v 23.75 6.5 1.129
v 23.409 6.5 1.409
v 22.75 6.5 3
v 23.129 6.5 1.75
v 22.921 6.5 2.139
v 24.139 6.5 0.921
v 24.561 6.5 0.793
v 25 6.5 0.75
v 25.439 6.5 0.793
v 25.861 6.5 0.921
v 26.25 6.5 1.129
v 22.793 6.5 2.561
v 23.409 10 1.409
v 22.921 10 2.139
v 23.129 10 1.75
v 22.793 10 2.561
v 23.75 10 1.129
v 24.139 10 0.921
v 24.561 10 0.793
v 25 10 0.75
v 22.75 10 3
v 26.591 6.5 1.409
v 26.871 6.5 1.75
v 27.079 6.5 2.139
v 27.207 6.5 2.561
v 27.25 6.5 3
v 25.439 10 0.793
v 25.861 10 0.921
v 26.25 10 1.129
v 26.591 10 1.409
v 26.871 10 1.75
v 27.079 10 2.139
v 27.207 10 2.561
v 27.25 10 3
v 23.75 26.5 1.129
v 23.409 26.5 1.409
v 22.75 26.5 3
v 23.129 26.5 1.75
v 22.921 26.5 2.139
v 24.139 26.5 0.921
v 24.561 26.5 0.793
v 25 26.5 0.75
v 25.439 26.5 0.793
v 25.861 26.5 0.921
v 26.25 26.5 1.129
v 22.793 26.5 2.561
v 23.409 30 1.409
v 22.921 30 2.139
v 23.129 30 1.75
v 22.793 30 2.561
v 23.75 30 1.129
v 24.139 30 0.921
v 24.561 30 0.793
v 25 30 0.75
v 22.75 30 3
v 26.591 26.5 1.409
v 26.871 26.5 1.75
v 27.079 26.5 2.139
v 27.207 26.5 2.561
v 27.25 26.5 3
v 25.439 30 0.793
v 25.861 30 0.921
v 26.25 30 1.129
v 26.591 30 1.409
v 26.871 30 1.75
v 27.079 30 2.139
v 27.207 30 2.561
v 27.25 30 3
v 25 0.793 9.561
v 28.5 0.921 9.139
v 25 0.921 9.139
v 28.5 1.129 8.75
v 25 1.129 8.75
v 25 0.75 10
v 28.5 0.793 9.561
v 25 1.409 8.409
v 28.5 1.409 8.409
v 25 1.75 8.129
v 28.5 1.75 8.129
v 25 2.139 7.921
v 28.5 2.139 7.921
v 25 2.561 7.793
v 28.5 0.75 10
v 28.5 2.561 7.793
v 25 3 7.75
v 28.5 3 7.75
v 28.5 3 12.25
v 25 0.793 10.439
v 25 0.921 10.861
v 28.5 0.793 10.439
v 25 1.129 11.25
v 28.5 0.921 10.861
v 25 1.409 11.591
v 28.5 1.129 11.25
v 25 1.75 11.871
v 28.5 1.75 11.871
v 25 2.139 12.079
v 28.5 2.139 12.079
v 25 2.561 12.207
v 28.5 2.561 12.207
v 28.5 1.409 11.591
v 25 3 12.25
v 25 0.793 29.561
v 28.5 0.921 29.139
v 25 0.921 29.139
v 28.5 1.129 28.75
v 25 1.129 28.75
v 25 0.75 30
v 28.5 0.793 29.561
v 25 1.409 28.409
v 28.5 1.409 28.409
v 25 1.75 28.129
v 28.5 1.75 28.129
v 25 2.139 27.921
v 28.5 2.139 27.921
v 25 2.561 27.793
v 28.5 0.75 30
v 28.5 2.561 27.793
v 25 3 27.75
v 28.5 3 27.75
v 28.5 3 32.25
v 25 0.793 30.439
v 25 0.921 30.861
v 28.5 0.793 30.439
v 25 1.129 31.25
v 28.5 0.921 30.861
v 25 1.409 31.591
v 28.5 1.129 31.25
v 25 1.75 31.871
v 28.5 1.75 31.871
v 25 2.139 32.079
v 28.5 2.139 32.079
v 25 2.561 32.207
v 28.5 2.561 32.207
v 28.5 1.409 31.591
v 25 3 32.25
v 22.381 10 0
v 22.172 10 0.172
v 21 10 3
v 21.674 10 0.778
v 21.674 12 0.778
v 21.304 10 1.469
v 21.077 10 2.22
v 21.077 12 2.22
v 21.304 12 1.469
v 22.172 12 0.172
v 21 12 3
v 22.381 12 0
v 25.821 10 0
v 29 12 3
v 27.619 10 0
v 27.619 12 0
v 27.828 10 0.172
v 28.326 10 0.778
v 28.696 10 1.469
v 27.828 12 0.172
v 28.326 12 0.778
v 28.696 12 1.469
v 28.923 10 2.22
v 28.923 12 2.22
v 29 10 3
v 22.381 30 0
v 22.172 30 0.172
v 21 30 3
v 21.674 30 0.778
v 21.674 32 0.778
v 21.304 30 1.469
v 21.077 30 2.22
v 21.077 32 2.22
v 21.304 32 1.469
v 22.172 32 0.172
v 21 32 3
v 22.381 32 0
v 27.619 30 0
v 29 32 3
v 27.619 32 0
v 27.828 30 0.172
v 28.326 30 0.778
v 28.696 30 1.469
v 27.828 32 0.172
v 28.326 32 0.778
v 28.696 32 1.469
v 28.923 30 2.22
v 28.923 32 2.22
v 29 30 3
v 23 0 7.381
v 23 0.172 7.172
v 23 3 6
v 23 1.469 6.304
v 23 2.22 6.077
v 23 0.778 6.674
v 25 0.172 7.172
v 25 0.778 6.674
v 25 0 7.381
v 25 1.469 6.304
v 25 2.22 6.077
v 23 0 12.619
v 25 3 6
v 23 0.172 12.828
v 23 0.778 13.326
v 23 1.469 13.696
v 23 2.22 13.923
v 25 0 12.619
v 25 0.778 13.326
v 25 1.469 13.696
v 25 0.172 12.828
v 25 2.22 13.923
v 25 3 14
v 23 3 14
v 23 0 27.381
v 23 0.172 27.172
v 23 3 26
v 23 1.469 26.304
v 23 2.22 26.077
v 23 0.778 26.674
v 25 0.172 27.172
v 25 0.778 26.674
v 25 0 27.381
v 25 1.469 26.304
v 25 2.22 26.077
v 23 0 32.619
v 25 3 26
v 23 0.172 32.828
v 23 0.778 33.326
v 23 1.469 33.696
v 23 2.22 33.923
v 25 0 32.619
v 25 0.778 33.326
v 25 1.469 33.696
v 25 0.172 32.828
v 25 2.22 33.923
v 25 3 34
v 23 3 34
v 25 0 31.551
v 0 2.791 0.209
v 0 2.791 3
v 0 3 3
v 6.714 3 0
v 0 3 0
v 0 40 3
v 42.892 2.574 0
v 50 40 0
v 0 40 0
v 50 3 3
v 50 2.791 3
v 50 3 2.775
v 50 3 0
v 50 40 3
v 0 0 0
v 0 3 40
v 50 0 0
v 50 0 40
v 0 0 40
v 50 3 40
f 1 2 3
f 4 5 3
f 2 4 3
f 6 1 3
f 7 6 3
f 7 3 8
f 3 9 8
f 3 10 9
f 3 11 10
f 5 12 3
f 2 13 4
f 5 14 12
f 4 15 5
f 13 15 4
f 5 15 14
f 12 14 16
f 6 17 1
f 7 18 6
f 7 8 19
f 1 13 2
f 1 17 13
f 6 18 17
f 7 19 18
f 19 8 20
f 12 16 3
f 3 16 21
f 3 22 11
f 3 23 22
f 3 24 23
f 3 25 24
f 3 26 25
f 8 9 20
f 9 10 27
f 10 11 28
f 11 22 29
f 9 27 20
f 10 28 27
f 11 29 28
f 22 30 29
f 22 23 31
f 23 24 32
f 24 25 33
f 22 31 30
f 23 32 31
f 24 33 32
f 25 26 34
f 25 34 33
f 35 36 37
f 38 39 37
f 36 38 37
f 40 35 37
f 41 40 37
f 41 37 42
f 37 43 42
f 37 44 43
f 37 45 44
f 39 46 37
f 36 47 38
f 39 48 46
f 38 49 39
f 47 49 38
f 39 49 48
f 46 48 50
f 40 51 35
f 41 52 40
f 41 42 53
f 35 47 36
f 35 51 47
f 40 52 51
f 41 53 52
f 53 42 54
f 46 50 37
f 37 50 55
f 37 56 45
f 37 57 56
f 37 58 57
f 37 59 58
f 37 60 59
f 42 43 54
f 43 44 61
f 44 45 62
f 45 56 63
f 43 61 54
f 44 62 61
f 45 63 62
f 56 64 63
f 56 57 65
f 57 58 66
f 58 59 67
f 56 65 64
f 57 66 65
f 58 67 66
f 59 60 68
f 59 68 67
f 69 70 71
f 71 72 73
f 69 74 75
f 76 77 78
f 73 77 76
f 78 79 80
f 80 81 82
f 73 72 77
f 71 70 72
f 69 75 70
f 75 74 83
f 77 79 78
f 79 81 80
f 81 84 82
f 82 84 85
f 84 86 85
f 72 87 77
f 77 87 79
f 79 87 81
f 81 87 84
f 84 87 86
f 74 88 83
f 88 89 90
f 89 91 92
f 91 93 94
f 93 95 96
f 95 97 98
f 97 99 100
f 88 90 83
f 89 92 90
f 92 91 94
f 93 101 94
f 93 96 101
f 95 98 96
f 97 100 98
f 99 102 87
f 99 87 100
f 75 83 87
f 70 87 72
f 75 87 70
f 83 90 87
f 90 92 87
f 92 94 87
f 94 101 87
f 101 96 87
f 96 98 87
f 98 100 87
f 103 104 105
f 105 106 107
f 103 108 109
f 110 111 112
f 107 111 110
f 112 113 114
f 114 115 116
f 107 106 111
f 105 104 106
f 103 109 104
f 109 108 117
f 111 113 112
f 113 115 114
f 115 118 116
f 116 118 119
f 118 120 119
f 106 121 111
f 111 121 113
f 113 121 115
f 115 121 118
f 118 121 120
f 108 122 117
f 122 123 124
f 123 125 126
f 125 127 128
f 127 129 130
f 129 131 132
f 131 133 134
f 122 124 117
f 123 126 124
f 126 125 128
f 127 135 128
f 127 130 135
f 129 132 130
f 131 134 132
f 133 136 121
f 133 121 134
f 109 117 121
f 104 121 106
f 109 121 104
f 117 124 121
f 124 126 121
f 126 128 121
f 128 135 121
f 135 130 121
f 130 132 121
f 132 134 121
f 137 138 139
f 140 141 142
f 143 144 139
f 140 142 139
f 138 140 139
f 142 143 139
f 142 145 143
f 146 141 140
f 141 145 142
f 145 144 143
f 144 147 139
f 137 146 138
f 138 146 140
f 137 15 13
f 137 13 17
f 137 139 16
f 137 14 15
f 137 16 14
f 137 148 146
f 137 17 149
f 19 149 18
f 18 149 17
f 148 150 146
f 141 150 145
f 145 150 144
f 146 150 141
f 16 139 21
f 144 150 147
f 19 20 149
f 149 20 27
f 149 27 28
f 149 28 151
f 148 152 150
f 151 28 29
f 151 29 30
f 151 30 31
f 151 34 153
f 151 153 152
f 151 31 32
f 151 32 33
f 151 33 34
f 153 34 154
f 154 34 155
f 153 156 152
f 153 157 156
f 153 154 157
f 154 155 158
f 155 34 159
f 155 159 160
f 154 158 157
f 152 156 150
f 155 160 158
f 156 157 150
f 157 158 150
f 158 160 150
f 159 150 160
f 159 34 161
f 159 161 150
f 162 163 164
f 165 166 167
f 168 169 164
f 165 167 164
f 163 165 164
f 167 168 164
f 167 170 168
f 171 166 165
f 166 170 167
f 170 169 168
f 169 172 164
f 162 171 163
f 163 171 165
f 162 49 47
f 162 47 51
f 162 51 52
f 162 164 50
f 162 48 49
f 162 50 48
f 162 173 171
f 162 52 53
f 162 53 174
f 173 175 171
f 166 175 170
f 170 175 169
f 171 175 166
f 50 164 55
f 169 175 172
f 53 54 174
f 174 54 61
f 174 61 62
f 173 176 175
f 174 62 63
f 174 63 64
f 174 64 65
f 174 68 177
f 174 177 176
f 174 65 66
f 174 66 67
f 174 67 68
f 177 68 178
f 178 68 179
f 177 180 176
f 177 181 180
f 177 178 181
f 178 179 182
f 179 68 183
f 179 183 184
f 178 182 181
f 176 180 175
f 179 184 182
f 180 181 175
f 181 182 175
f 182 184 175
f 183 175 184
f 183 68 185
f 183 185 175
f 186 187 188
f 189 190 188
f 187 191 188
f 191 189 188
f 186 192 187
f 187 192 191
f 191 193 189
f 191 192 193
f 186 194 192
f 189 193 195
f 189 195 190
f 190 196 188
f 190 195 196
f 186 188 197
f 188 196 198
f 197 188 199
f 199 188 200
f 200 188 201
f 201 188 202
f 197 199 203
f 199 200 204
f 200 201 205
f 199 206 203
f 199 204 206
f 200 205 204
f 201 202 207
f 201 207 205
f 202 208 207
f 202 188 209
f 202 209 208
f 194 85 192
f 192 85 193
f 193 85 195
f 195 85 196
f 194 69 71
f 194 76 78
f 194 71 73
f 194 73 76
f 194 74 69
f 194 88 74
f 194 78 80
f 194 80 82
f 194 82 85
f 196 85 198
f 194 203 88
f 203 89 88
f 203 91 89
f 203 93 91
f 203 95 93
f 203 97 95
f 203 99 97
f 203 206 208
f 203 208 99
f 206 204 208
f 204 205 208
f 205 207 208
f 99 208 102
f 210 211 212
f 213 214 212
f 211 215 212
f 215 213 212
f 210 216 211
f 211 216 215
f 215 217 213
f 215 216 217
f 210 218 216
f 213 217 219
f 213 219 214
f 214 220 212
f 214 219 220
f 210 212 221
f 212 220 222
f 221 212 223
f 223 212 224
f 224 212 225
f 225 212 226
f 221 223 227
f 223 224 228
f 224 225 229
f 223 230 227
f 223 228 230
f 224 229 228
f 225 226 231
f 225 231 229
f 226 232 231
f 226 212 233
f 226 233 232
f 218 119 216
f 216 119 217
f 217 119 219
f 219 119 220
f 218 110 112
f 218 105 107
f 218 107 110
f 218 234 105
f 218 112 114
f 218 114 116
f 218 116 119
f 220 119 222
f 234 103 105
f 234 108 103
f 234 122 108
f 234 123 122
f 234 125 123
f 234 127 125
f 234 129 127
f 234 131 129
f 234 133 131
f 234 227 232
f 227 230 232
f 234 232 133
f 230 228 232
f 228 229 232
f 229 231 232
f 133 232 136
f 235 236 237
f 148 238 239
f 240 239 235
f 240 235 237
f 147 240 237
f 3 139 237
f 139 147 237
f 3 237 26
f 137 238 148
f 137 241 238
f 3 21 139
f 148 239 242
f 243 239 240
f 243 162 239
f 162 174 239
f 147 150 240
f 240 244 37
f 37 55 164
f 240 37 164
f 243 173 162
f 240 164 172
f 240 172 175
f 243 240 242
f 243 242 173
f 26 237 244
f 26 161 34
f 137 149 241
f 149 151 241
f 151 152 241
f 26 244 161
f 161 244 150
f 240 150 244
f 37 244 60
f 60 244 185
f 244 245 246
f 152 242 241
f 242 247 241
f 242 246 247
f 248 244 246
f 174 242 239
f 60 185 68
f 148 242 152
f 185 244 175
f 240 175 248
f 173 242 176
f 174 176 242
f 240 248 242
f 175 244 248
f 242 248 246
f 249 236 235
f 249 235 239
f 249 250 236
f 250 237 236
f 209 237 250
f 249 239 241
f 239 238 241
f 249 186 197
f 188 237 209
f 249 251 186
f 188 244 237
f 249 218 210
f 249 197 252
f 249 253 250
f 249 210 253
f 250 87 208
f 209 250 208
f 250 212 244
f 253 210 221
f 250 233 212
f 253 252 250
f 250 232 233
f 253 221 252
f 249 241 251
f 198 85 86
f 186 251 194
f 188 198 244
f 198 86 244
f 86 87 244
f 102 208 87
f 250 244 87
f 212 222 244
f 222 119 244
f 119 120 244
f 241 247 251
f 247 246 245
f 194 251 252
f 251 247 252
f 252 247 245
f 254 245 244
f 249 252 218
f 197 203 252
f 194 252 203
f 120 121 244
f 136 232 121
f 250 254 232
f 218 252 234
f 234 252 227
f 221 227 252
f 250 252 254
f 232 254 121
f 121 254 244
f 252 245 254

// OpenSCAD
// L-bracket parameters
bracket_w = 50;   // width (common to both flanges)
bracket_h = 40;   // height / depth of flanges
thickness = 3;

// Countersunk hole parameters
hole_d = 4.5;      // through hole diameter
cs_d = 8;          // countersink diameter
cs_depth = 2;      // countersink depth
edge_offset = 10;  // distance from edge to hole center (along the main axis)
center_line = bracket_w/2;

// Hole positions (symmetric along width)
hole_y_pos = [edge_offset, bracket_h-edge_offset];

// Utilities
module countersunk_hole(face="") {
    // face: "top" or "side"
    if (face == "top") {
        // Plate at Z = 0, +Y; hole along -Z
        translate([0,0,thickness])
        rotate([90,0,0])
        union() {
            // Through hole
            cylinder(d=hole_d, h=thickness+0.5, $fn=32);
            // Countersink
            translate([0,0,-cs_depth])
            cylinder(d=cs_d, h=cs_depth, $fn=32);
        }
    }
    if (face == "side") {
        // Plate at Y = 0, +Z; hole along -Y
        translate([0,thickness,0])
        rotate([0,90,0])
        union() {
            // Through hole
            cylinder(d=hole_d, h=thickness+0.5, $fn=32);
            // Countersink
            translate([0,0,-cs_depth])
            cylinder(d=cs_d, h=cs_depth, $fn=32);
        }
    }
}

// Horizontal flange
module flange_top() {
    difference() {
        // Main plate
        translate([0, 0, 0])
            cube([bracket_w, bracket_h, thickness]);
        // Holes
        for (ypos = hole_y_pos)
            translate([center_line, ypos, 0])
                countersunk_hole("top");
    }
}

// Vertical flange
module flange_side() {
    difference() {
        // Main plate
        translate([0, 0, 0])
            cube([bracket_w, thickness, bracket_h]);
        // Holes
        for (zpos = hole_y_pos)
            translate([center_line, 0, zpos])
                countersunk_hole("side");
    }
}

// Assemble L-bracket at origin (inner corner at [0,0,0])
flange_top();
flange_side();
